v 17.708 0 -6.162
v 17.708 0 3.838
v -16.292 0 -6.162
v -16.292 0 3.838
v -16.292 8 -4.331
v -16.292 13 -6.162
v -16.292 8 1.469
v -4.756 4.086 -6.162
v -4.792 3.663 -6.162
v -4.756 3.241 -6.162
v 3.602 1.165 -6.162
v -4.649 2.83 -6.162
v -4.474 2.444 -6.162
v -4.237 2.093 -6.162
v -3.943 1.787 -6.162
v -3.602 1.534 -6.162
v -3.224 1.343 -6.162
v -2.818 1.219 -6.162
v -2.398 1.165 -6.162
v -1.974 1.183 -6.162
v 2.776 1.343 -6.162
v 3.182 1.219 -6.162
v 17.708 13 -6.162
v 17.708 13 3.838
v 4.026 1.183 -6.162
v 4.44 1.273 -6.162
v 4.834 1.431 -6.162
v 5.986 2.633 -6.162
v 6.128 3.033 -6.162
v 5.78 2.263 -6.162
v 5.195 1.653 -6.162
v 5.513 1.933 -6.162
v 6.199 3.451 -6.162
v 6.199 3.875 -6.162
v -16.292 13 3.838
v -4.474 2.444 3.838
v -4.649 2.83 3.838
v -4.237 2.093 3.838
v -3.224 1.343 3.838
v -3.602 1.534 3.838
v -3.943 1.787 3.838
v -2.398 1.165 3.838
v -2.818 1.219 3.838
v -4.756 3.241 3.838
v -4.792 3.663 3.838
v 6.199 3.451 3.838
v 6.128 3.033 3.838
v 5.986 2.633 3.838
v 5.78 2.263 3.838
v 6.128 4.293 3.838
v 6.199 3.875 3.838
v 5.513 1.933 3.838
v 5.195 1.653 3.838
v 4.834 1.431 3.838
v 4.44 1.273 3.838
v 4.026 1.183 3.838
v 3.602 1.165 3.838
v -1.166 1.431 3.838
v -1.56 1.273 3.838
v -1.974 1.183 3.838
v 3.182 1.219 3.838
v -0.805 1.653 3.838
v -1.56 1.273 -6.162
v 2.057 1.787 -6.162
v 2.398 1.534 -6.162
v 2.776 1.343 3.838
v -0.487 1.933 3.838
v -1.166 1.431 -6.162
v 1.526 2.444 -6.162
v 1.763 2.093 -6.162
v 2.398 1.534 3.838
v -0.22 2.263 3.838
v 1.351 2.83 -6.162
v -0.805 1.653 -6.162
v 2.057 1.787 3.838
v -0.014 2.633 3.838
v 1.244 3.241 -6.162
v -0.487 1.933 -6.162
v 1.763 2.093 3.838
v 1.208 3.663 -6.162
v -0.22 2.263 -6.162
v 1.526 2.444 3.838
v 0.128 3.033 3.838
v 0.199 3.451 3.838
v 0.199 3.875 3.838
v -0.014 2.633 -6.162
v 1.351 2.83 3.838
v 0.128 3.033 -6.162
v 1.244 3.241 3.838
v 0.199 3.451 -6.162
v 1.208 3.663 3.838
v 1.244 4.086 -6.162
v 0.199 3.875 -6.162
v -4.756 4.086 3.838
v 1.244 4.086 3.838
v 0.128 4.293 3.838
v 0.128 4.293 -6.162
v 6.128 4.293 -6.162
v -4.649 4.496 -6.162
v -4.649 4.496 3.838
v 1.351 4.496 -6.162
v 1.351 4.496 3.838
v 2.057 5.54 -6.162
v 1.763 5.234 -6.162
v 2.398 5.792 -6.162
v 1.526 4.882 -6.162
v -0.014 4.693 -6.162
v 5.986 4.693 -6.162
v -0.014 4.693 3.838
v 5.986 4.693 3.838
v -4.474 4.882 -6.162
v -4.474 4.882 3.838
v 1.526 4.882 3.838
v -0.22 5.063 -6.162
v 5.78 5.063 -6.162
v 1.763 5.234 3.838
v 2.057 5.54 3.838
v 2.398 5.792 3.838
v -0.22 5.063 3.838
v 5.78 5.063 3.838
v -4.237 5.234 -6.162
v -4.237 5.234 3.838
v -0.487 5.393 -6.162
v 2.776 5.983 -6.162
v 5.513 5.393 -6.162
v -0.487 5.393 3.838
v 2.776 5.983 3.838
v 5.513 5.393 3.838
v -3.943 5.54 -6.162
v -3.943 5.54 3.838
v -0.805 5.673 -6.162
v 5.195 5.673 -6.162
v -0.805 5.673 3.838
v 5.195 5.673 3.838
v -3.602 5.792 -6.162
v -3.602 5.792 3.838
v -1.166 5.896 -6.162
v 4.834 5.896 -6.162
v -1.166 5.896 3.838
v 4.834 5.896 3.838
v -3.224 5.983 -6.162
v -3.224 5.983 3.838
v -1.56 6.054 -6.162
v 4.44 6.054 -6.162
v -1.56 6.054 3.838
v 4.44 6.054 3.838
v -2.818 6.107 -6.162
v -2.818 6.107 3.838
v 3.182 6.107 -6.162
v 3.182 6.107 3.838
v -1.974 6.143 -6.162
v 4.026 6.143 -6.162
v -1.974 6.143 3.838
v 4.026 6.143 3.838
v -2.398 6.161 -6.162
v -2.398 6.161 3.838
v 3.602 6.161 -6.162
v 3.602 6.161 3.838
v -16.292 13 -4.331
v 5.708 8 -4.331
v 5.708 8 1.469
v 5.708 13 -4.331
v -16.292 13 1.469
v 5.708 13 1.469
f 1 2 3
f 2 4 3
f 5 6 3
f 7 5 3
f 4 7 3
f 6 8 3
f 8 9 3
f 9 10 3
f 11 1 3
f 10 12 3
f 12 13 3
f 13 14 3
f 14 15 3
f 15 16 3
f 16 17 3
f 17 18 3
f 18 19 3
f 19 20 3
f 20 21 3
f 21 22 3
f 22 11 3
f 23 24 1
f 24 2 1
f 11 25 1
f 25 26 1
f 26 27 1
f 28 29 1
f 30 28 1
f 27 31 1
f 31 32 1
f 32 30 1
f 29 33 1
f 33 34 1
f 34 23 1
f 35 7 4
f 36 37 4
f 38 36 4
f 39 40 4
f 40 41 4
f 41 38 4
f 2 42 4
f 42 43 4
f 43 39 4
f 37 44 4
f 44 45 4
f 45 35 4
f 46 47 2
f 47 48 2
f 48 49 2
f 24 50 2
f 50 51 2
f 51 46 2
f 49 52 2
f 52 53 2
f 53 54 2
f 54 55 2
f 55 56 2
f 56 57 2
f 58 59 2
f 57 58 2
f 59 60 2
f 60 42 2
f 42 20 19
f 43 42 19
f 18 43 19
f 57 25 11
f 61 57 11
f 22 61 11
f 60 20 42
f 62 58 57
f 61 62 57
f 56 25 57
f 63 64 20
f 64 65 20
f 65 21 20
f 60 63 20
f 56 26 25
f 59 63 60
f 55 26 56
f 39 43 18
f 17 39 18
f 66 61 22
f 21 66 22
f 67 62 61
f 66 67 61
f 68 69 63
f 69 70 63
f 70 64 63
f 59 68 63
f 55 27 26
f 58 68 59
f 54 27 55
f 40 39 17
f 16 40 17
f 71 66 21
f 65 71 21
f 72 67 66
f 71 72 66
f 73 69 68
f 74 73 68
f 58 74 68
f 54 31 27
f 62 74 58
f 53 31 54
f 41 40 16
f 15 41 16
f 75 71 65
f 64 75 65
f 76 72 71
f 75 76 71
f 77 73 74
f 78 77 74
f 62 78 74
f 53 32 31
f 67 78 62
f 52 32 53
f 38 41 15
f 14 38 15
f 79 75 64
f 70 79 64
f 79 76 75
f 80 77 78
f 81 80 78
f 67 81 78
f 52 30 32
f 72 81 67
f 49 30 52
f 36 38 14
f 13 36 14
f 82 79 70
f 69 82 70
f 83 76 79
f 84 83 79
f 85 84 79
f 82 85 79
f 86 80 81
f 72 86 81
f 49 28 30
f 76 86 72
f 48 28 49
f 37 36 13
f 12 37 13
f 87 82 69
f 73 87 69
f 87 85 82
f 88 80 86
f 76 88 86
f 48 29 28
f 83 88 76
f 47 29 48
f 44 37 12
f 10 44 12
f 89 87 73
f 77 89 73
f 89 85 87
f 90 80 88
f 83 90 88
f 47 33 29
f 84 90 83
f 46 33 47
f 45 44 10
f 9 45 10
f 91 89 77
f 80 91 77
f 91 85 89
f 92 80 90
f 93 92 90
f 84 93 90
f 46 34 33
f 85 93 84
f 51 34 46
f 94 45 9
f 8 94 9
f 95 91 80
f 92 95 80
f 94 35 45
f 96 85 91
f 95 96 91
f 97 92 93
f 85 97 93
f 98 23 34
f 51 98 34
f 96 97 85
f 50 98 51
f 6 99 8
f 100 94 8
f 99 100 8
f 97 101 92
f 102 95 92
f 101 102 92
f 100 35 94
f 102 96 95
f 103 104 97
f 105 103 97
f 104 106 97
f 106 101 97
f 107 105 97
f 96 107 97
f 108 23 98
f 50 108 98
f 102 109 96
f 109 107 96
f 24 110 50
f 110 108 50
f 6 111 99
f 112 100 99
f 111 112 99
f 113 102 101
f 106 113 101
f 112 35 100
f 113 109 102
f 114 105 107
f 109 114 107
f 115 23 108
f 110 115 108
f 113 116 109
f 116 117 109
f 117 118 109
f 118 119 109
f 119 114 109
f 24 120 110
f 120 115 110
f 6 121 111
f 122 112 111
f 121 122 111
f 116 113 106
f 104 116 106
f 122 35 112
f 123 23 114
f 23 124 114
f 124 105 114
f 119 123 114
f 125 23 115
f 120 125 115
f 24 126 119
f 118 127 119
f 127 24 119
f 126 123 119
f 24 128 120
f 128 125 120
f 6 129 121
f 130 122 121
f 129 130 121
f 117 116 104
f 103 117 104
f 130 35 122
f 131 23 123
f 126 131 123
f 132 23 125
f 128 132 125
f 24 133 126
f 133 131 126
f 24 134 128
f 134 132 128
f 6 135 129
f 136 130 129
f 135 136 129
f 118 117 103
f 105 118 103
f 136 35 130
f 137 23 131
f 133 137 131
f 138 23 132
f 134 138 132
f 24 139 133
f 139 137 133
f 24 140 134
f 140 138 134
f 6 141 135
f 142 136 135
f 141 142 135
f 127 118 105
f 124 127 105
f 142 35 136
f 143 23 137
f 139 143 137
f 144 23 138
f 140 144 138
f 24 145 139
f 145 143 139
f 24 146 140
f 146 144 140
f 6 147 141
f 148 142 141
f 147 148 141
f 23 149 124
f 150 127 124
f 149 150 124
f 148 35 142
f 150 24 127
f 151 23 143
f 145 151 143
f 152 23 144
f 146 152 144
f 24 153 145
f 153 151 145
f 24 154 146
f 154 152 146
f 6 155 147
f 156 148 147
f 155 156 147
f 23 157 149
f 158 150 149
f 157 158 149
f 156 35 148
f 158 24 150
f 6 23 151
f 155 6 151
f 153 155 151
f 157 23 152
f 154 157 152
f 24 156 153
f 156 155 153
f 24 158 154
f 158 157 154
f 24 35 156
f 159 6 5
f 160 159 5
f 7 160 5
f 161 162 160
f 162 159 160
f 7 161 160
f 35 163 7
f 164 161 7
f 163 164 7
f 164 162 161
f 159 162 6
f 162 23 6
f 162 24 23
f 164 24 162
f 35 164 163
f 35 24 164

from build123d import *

# Parameters (mm, degrees)
SKETCH_1_W          = 34
SKETCH_1_H          = 10
EXTRUDE_2_DEPTH     = 13
SKETCH_2_W          = 22
SKETCH_2_H          = 5.8
CUT_EXTRUDE_1_DEPTH = 5
SKETCH_3_R          = 2.5
CUT_EXTRUDE_2_DEPTH = 20


with BuildPart() as part:
    # 草圖1 → 填料-伸長2 (new body)
    with BuildSketch(Plane(origin=(0, 0, 0), x_dir=(1, 0, 0), z_dir=(0, 1, 0))):
        with Locations((0.708333333, 1.1625)):
            Rectangle(SKETCH_1_W, SKETCH_1_H)
    extrude(amount=EXTRUDE_2_DEPTH)

    # 草圖2 → 除料-伸長1 (cut)
    with BuildSketch(Plane(origin=(0, 13, 0), x_dir=(1, 0, 0), z_dir=(0, 1, 0))):
        with Locations((-5.291666667, 1.430875321)):
            Rectangle(SKETCH_2_W, SKETCH_2_H)
    extrude(amount=-CUT_EXTRUDE_1_DEPTH, mode=Mode.SUBTRACT)

    # 草圖3 → 除料-伸長2 (cut)
    with BuildSketch(Plane(origin=(0, 0, -6.1625), x_dir=(-1, 0, 0), z_dir=(0, 0, -1))):
        with Locations((2.291666667, 3.663194133)):
            Circle(SKETCH_3_R)
        with Locations((-3.708333333, 3.663194133)):
            Circle(SKETCH_3_R)
    extrude(amount=-CUT_EXTRUDE_2_DEPTH, mode=Mode.SUBTRACT)


solid = part.part
